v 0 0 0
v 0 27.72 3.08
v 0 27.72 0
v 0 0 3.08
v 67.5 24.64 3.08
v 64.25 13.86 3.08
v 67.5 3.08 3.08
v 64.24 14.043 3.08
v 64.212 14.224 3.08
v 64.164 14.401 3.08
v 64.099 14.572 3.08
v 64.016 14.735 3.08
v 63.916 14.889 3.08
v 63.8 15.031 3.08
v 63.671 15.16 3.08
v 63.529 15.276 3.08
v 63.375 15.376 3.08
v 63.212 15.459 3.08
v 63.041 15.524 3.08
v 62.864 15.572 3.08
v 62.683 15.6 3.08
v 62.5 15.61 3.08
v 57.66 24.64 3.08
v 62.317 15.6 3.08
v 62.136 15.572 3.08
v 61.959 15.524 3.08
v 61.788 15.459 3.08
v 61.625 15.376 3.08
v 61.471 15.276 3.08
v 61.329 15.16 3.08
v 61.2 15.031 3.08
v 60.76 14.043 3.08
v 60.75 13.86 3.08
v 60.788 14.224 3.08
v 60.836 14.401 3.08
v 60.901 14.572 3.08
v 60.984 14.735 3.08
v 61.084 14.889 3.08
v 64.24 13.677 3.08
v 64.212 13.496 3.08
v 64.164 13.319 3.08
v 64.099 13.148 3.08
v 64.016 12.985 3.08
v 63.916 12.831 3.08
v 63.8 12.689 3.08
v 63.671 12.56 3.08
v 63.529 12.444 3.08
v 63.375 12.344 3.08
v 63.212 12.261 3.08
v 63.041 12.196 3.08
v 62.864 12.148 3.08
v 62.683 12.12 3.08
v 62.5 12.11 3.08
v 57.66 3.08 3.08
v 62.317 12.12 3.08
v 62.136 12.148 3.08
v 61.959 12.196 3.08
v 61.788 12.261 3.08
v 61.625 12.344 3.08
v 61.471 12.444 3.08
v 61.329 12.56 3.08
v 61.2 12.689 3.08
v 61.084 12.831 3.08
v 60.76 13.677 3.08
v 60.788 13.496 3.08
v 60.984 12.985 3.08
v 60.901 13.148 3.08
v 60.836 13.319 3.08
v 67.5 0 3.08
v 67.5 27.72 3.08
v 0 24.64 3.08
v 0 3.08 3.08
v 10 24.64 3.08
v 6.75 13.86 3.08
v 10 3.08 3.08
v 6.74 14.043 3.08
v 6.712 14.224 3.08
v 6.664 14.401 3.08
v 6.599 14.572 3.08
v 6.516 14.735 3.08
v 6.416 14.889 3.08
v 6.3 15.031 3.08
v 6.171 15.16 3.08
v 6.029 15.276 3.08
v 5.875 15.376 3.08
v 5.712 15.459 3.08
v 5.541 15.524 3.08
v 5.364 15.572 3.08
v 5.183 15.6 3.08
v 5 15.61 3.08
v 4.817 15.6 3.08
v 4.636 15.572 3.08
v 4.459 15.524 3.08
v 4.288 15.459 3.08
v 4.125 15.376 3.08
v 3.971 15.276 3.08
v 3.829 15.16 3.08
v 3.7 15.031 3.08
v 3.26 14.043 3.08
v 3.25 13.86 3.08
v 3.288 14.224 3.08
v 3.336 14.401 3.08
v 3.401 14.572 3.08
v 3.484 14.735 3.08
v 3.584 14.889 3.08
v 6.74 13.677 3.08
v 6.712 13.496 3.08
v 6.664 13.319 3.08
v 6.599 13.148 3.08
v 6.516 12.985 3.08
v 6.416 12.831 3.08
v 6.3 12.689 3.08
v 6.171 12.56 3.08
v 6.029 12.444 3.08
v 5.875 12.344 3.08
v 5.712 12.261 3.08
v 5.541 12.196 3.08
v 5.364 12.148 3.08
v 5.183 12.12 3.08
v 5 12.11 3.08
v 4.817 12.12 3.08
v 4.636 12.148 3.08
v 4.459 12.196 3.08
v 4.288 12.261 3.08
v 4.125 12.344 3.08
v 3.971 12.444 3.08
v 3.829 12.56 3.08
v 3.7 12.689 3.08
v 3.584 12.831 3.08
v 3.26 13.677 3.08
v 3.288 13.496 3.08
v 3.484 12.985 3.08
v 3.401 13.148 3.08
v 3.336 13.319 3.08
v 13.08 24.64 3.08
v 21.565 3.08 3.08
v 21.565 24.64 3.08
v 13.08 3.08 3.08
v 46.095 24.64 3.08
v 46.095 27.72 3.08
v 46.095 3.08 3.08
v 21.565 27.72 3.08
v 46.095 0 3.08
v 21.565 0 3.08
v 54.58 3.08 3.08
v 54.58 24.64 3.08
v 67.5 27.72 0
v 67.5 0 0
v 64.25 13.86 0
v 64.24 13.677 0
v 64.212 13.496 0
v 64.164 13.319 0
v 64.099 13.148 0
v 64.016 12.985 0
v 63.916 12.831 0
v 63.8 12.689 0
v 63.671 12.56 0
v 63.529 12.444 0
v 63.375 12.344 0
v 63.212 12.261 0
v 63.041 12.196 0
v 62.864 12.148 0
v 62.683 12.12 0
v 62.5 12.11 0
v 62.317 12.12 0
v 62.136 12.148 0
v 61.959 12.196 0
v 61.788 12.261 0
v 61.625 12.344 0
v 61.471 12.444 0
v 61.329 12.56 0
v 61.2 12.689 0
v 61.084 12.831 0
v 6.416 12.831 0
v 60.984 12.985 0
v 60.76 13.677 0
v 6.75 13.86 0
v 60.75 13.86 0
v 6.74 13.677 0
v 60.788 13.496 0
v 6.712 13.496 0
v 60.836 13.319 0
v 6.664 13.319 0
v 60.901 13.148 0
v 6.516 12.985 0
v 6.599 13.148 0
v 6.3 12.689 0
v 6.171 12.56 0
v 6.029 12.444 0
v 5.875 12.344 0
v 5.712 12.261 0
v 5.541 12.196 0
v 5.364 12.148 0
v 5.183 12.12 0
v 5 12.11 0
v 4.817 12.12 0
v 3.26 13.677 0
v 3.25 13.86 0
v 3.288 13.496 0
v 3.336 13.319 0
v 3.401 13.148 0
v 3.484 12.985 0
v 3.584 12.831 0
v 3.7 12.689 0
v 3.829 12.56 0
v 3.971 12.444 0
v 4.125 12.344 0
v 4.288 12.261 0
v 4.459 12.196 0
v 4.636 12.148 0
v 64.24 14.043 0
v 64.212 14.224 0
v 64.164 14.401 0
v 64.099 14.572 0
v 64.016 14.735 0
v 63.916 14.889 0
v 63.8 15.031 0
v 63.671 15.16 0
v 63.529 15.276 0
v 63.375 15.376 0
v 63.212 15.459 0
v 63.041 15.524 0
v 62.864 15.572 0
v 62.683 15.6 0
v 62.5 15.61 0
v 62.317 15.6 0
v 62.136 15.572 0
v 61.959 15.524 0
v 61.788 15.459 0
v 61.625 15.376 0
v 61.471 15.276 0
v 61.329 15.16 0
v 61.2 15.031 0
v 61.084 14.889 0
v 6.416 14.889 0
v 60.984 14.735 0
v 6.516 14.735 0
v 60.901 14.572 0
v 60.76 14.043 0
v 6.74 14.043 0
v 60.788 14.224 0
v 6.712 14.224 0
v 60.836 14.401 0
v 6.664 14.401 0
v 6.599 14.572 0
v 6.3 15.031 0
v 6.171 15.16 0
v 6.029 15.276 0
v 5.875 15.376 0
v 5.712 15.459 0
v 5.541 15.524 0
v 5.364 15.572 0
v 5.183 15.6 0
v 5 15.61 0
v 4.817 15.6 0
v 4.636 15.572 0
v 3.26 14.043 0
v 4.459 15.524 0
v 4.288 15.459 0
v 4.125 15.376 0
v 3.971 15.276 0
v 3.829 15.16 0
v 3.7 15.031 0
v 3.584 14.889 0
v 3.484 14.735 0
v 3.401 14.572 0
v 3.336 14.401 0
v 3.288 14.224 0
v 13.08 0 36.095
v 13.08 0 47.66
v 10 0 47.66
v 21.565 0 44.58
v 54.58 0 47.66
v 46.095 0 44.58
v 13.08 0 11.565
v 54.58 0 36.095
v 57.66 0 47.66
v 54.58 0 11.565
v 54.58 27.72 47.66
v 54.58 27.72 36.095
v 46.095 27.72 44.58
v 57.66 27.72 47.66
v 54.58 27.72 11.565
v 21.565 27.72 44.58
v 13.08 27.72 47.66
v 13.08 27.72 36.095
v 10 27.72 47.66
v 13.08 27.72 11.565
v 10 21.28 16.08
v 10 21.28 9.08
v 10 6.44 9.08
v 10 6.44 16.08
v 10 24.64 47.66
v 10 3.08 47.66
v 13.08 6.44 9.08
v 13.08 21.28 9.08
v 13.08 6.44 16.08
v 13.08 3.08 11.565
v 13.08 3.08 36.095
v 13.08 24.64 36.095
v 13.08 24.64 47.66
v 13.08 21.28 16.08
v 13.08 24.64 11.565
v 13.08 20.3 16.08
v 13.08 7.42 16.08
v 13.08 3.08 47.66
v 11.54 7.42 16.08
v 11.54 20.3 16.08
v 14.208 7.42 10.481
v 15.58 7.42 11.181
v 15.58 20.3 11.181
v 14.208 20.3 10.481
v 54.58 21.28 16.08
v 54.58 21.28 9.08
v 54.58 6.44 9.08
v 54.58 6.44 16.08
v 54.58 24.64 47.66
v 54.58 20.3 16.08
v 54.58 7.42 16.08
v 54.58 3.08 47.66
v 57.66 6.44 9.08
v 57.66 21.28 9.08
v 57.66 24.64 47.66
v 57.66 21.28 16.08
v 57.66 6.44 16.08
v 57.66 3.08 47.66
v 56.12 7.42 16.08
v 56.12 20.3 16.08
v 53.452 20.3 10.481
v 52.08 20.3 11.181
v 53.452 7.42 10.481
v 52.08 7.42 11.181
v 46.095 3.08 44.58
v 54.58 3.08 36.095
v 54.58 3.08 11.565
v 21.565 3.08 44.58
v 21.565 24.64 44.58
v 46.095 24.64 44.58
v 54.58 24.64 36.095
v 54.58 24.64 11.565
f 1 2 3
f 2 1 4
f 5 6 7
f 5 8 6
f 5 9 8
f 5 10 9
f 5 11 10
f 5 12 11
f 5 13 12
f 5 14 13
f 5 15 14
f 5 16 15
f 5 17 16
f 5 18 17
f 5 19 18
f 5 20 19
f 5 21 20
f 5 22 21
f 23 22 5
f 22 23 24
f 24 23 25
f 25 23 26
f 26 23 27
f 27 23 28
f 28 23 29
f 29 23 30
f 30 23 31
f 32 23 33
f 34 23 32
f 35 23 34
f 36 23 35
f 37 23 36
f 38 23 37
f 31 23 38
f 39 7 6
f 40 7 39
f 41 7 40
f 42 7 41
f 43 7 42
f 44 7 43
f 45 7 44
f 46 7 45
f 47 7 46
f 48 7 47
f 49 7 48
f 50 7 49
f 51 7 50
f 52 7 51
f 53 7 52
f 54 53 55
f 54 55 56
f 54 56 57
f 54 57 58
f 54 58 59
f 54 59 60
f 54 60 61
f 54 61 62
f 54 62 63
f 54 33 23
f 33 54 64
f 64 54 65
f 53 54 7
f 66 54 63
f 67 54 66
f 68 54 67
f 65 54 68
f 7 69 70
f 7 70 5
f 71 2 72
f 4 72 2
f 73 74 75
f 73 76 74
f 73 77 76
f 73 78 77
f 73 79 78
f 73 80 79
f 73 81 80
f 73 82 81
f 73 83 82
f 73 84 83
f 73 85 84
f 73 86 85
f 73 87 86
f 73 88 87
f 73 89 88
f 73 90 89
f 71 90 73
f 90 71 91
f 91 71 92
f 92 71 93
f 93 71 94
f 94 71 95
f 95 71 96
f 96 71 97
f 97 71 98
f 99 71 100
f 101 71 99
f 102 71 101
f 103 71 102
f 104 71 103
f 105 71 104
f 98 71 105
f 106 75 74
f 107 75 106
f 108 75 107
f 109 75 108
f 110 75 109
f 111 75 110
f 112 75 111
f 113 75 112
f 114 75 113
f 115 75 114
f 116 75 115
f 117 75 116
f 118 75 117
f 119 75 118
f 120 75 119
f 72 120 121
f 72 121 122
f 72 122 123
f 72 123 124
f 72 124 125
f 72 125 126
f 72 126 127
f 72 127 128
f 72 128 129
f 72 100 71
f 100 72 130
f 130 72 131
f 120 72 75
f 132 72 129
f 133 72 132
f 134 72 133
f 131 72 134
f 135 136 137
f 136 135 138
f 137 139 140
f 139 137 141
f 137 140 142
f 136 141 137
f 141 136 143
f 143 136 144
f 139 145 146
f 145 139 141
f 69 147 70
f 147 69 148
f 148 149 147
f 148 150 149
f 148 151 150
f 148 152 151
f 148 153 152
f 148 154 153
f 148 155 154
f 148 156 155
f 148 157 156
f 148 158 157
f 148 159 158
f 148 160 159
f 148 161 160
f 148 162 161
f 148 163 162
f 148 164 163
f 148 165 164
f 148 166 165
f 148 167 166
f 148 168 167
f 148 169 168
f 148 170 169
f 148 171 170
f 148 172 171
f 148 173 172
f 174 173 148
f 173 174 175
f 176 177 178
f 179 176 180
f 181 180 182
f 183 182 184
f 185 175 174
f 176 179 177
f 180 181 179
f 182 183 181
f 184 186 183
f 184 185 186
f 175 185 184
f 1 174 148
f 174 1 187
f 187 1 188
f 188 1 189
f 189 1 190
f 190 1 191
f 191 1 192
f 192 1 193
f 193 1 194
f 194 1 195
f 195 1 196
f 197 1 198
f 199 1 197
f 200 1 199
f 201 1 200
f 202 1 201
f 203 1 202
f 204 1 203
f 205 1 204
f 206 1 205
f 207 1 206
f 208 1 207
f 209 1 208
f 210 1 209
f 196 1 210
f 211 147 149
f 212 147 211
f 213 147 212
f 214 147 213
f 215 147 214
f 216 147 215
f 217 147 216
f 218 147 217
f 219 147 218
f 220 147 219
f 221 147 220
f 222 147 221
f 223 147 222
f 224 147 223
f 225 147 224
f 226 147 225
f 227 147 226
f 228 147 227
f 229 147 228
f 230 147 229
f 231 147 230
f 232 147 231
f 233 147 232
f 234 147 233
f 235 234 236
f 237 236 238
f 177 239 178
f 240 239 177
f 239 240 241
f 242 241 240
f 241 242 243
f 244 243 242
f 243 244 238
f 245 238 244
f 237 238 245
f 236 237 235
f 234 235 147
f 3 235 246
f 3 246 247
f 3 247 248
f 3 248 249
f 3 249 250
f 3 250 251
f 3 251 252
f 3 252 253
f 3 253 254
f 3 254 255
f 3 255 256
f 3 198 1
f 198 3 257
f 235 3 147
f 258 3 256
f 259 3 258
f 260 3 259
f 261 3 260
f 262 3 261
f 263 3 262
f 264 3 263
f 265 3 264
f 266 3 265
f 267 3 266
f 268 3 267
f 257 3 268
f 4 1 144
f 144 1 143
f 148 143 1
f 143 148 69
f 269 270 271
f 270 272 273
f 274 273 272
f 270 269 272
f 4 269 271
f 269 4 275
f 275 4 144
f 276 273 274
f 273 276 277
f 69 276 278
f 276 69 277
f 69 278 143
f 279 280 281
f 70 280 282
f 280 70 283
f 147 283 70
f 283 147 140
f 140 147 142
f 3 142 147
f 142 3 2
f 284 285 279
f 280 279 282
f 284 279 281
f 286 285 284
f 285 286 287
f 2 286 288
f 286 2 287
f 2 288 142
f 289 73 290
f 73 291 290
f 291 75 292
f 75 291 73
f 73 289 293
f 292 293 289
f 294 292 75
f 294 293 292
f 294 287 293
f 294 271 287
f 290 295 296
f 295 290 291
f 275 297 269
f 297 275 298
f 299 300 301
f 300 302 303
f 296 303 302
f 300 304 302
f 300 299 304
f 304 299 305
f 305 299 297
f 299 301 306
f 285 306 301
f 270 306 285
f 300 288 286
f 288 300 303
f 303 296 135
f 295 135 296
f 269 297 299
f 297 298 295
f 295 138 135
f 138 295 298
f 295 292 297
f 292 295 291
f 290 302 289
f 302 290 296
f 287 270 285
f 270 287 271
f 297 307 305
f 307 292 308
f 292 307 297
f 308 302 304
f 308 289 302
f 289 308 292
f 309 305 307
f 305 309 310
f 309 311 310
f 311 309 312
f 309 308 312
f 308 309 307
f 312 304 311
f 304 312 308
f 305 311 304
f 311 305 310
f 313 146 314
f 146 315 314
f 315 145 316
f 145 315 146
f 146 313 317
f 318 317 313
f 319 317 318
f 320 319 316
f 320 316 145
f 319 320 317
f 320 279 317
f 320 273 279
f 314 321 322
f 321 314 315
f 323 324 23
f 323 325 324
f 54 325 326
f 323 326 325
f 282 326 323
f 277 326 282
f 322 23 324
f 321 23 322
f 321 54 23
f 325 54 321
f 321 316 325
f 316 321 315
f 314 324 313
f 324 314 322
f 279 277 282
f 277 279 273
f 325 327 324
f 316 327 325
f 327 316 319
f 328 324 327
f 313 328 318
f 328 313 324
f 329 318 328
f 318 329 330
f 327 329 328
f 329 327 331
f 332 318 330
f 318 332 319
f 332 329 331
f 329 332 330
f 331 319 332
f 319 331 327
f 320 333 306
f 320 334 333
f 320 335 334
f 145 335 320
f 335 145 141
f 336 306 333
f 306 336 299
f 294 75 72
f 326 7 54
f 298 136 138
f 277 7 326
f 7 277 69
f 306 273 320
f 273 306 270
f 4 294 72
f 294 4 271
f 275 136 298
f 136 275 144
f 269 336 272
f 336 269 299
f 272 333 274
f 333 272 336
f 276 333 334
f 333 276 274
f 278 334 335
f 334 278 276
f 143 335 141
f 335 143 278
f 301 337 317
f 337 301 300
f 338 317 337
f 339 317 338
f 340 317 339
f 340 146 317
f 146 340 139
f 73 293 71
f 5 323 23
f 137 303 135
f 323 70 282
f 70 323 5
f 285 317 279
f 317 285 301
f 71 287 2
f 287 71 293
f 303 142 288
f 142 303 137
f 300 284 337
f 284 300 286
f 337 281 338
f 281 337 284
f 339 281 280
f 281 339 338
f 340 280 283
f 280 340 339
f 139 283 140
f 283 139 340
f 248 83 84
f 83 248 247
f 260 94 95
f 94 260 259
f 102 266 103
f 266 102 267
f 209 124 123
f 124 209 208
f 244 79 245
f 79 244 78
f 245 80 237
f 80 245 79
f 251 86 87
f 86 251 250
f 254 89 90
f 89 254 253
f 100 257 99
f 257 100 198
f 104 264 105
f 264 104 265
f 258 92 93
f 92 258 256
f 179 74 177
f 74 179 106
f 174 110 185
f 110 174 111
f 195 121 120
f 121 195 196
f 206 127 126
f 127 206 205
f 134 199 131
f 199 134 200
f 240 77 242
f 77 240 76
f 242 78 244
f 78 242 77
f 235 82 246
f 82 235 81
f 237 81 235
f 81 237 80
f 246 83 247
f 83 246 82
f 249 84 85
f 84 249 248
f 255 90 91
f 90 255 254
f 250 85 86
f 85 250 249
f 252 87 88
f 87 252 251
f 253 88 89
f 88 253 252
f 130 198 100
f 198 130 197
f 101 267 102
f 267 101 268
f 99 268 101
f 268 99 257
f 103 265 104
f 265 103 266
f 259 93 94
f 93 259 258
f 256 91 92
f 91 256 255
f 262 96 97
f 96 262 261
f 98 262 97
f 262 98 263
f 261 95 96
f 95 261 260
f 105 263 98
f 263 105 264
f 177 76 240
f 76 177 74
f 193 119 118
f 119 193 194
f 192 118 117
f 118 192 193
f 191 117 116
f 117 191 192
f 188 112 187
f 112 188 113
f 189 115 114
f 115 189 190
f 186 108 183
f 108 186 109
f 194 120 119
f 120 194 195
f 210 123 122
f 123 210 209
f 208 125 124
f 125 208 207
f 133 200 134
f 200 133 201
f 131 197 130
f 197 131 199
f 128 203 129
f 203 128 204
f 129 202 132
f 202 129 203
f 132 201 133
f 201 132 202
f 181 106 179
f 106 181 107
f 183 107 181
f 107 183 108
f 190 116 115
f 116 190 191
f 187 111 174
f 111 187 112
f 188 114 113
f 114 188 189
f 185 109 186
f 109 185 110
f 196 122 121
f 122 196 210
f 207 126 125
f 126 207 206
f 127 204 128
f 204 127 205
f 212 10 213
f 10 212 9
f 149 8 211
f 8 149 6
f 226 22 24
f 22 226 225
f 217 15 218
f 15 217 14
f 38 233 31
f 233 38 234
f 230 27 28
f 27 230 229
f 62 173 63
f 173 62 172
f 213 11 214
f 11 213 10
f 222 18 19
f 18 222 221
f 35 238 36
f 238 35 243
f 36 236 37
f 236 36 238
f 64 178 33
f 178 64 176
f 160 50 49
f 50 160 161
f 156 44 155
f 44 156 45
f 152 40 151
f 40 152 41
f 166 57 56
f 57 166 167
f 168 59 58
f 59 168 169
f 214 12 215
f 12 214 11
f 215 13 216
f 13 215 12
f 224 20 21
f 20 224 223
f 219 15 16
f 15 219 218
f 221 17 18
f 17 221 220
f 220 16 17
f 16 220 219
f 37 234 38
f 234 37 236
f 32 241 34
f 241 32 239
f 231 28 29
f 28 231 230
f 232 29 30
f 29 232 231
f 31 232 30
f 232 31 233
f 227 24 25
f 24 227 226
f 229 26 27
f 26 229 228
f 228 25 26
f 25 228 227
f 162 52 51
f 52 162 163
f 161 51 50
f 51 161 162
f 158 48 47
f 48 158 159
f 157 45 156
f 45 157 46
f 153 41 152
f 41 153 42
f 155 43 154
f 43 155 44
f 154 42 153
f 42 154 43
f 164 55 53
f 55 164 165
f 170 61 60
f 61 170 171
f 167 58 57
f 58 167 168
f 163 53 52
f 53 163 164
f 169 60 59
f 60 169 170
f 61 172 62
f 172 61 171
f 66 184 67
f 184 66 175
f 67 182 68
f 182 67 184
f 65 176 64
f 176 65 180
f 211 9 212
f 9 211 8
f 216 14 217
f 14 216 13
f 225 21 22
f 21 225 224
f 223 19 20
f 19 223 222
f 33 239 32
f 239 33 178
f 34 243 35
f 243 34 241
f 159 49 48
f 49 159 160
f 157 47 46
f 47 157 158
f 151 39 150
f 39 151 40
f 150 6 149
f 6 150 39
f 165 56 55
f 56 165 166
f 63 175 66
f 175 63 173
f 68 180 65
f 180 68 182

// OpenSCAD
$fa = 6;
$fs = 0.05;

$wallthick = 3.08;
$totalwidth = 67.5;
$cornerside = 6*sqrt(2);
$fanside = 41.5;
$totalheight = $fanside+2*$wallthick;
$bendheight = 13+$wallthick;
$bendwidth = 12.88;
$bendgap = 0.98;
$shortvertheight = 6+$wallthick;
$betweenplates = 21.56;
$screwholedia = 3.5;
$screwholecenterinset = 5;
$sidesupport = 2*$screwholecenterinset;

module face_plate()
{
  linear_extrude($wallthick)
  {
    polygon(points=[[0,0],[0,$wallthick],[$sidesupport,$totalheight],[$totalheight+$sidesupport,$totalheight],[$totalwidth,$wallthick],[$totalwidth,0],[$sidesupport+$wallthick+$cornerside,$wallthick],[$sidesupport+$wallthick,$wallthick+$cornerside],[$sidesupport+$wallthick,$fanside+$wallthick-$cornerside],[$sidesupport+$wallthick+$cornerside,$fanside+$wallthick],[$fanside+$sidesupport+$wallthick-$cornerside,$fanside+$wallthick],[$fanside+$sidesupport+$wallthick,$fanside+$wallthick-$cornerside],[$fanside+$sidesupport+$wallthick,$wallthick+$cornerside],[$fanside+$sidesupport+$wallthick-$cornerside,$wallthick]], paths=[[0,1,2,3,4,5],[6,7,8,9,10,11,12,13]]);
  }
}

module bend()
{
  linear_extrude($bendwidth)
  {
    polygon(points=[[-2.5,-2*sqrt(6)],[0,0],[$wallthick/2,0],[-2.5+$wallthick*2*sqrt(6)/11,-2*sqrt(6)-$wallthick*5/22]]);
  }
}

difference()
{
  union()
  {
    // bottom plate
    cube([$totalwidth,2*$wallthick+$betweenplates,$wallthick]);
    
    // left lower side plate
    translate([$sidesupport,0,0])
    {
      cube([$wallthick,2*$wallthick+$betweenplates,$shortvertheight]);
    }
    
    // left bend sides
    translate([$sidesupport,0,0])
    {
      cube([$wallthick,$wallthick+($betweenplates-$bendwidth-2*$bendgap)/2,$wallthick+$bendheight+0.001]);
    }
    
    translate([$sidesupport,$wallthick+$betweenplates-($betweenplates-$bendwidth-2*$bendgap)/2,0])
    {
      cube([$wallthick,$wallthick+($betweenplates-$bendwidth-2*$bendgap)/2,$wallthick+$bendheight+0.001]);
    }
    
    // left upper side plate
    translate([$sidesupport,0,$bendheight])
    {
      cube([$wallthick,2*$wallthick+$betweenplates,$totalheight-$bendheight]);
    }
    
    // leftt bend
    translate([$sidesupport+$wallthick,(2*$wallthick+$betweenplates-$bendwidth)/2,$bendheight])
    {
      rotate([0,0,180])
      {
        rotate([90,0,0])
        {
          bend();
        }
      }
    }
    
    // right lower side plate
    translate([$fanside+$sidesupport+$wallthick,0,0])
    {
      cube([$wallthick,2*$wallthick+$betweenplates,$shortvertheight]);
    }
    
    // right bend sides
    translate([$fanside+$sidesupport+$wallthick,0,0])
    {
      cube([$wallthick,$wallthick+($betweenplates-$bendwidth-2*$bendgap)/2,$wallthick+$bendheight+0.001]);
    }
    
    translate([$fanside+$sidesupport+$wallthick,$wallthick+$betweenplates-($betweenplates-$bendwidth-2*$bendgap)/2,0])
    {
      cube([$wallthick,$wallthick+($betweenplates-$bendwidth-2*$bendgap)/2,$wallthick+$bendheight+0.001]);
    }
    
    // right upper side plate
    translate([$fanside+$sidesupport+$wallthick,0,$bendheight])
    {
      cube([$wallthick,2*$wallthick+$betweenplates,$totalheight-$bendheight]);
    }
    
    // right bend
    translate([$fanside+$sidesupport+$wallthick,(2*$wallthick+$betweenplates+$bendwidth)/2,$bendheight])
    {
      rotate([90,0,0])
      {
        bend();
      }
    }
    
    // rear face
    translate([0,$wallthick,0])
    {
      rotate([90,0,0])
      {
        face_plate();
      }
    }

    // front face
    translate([0,2*$wallthick+$betweenplates,0])
    {
      rotate([90,0,0])
      {
        face_plate();
      }
    }
  }

  // screw holes
  translate([$screwholecenterinset,(2*$wallthick+$betweenplates)/2,0])
  {
    cylinder(r=$screwholedia/2,h=$wallthick);
  }
  
  translate([$totalwidth-$screwholecenterinset,(2*$wallthick+$betweenplates)/2,0])
  {
    cylinder(r=$screwholedia/2,h=$wallthick);
  }  
}
